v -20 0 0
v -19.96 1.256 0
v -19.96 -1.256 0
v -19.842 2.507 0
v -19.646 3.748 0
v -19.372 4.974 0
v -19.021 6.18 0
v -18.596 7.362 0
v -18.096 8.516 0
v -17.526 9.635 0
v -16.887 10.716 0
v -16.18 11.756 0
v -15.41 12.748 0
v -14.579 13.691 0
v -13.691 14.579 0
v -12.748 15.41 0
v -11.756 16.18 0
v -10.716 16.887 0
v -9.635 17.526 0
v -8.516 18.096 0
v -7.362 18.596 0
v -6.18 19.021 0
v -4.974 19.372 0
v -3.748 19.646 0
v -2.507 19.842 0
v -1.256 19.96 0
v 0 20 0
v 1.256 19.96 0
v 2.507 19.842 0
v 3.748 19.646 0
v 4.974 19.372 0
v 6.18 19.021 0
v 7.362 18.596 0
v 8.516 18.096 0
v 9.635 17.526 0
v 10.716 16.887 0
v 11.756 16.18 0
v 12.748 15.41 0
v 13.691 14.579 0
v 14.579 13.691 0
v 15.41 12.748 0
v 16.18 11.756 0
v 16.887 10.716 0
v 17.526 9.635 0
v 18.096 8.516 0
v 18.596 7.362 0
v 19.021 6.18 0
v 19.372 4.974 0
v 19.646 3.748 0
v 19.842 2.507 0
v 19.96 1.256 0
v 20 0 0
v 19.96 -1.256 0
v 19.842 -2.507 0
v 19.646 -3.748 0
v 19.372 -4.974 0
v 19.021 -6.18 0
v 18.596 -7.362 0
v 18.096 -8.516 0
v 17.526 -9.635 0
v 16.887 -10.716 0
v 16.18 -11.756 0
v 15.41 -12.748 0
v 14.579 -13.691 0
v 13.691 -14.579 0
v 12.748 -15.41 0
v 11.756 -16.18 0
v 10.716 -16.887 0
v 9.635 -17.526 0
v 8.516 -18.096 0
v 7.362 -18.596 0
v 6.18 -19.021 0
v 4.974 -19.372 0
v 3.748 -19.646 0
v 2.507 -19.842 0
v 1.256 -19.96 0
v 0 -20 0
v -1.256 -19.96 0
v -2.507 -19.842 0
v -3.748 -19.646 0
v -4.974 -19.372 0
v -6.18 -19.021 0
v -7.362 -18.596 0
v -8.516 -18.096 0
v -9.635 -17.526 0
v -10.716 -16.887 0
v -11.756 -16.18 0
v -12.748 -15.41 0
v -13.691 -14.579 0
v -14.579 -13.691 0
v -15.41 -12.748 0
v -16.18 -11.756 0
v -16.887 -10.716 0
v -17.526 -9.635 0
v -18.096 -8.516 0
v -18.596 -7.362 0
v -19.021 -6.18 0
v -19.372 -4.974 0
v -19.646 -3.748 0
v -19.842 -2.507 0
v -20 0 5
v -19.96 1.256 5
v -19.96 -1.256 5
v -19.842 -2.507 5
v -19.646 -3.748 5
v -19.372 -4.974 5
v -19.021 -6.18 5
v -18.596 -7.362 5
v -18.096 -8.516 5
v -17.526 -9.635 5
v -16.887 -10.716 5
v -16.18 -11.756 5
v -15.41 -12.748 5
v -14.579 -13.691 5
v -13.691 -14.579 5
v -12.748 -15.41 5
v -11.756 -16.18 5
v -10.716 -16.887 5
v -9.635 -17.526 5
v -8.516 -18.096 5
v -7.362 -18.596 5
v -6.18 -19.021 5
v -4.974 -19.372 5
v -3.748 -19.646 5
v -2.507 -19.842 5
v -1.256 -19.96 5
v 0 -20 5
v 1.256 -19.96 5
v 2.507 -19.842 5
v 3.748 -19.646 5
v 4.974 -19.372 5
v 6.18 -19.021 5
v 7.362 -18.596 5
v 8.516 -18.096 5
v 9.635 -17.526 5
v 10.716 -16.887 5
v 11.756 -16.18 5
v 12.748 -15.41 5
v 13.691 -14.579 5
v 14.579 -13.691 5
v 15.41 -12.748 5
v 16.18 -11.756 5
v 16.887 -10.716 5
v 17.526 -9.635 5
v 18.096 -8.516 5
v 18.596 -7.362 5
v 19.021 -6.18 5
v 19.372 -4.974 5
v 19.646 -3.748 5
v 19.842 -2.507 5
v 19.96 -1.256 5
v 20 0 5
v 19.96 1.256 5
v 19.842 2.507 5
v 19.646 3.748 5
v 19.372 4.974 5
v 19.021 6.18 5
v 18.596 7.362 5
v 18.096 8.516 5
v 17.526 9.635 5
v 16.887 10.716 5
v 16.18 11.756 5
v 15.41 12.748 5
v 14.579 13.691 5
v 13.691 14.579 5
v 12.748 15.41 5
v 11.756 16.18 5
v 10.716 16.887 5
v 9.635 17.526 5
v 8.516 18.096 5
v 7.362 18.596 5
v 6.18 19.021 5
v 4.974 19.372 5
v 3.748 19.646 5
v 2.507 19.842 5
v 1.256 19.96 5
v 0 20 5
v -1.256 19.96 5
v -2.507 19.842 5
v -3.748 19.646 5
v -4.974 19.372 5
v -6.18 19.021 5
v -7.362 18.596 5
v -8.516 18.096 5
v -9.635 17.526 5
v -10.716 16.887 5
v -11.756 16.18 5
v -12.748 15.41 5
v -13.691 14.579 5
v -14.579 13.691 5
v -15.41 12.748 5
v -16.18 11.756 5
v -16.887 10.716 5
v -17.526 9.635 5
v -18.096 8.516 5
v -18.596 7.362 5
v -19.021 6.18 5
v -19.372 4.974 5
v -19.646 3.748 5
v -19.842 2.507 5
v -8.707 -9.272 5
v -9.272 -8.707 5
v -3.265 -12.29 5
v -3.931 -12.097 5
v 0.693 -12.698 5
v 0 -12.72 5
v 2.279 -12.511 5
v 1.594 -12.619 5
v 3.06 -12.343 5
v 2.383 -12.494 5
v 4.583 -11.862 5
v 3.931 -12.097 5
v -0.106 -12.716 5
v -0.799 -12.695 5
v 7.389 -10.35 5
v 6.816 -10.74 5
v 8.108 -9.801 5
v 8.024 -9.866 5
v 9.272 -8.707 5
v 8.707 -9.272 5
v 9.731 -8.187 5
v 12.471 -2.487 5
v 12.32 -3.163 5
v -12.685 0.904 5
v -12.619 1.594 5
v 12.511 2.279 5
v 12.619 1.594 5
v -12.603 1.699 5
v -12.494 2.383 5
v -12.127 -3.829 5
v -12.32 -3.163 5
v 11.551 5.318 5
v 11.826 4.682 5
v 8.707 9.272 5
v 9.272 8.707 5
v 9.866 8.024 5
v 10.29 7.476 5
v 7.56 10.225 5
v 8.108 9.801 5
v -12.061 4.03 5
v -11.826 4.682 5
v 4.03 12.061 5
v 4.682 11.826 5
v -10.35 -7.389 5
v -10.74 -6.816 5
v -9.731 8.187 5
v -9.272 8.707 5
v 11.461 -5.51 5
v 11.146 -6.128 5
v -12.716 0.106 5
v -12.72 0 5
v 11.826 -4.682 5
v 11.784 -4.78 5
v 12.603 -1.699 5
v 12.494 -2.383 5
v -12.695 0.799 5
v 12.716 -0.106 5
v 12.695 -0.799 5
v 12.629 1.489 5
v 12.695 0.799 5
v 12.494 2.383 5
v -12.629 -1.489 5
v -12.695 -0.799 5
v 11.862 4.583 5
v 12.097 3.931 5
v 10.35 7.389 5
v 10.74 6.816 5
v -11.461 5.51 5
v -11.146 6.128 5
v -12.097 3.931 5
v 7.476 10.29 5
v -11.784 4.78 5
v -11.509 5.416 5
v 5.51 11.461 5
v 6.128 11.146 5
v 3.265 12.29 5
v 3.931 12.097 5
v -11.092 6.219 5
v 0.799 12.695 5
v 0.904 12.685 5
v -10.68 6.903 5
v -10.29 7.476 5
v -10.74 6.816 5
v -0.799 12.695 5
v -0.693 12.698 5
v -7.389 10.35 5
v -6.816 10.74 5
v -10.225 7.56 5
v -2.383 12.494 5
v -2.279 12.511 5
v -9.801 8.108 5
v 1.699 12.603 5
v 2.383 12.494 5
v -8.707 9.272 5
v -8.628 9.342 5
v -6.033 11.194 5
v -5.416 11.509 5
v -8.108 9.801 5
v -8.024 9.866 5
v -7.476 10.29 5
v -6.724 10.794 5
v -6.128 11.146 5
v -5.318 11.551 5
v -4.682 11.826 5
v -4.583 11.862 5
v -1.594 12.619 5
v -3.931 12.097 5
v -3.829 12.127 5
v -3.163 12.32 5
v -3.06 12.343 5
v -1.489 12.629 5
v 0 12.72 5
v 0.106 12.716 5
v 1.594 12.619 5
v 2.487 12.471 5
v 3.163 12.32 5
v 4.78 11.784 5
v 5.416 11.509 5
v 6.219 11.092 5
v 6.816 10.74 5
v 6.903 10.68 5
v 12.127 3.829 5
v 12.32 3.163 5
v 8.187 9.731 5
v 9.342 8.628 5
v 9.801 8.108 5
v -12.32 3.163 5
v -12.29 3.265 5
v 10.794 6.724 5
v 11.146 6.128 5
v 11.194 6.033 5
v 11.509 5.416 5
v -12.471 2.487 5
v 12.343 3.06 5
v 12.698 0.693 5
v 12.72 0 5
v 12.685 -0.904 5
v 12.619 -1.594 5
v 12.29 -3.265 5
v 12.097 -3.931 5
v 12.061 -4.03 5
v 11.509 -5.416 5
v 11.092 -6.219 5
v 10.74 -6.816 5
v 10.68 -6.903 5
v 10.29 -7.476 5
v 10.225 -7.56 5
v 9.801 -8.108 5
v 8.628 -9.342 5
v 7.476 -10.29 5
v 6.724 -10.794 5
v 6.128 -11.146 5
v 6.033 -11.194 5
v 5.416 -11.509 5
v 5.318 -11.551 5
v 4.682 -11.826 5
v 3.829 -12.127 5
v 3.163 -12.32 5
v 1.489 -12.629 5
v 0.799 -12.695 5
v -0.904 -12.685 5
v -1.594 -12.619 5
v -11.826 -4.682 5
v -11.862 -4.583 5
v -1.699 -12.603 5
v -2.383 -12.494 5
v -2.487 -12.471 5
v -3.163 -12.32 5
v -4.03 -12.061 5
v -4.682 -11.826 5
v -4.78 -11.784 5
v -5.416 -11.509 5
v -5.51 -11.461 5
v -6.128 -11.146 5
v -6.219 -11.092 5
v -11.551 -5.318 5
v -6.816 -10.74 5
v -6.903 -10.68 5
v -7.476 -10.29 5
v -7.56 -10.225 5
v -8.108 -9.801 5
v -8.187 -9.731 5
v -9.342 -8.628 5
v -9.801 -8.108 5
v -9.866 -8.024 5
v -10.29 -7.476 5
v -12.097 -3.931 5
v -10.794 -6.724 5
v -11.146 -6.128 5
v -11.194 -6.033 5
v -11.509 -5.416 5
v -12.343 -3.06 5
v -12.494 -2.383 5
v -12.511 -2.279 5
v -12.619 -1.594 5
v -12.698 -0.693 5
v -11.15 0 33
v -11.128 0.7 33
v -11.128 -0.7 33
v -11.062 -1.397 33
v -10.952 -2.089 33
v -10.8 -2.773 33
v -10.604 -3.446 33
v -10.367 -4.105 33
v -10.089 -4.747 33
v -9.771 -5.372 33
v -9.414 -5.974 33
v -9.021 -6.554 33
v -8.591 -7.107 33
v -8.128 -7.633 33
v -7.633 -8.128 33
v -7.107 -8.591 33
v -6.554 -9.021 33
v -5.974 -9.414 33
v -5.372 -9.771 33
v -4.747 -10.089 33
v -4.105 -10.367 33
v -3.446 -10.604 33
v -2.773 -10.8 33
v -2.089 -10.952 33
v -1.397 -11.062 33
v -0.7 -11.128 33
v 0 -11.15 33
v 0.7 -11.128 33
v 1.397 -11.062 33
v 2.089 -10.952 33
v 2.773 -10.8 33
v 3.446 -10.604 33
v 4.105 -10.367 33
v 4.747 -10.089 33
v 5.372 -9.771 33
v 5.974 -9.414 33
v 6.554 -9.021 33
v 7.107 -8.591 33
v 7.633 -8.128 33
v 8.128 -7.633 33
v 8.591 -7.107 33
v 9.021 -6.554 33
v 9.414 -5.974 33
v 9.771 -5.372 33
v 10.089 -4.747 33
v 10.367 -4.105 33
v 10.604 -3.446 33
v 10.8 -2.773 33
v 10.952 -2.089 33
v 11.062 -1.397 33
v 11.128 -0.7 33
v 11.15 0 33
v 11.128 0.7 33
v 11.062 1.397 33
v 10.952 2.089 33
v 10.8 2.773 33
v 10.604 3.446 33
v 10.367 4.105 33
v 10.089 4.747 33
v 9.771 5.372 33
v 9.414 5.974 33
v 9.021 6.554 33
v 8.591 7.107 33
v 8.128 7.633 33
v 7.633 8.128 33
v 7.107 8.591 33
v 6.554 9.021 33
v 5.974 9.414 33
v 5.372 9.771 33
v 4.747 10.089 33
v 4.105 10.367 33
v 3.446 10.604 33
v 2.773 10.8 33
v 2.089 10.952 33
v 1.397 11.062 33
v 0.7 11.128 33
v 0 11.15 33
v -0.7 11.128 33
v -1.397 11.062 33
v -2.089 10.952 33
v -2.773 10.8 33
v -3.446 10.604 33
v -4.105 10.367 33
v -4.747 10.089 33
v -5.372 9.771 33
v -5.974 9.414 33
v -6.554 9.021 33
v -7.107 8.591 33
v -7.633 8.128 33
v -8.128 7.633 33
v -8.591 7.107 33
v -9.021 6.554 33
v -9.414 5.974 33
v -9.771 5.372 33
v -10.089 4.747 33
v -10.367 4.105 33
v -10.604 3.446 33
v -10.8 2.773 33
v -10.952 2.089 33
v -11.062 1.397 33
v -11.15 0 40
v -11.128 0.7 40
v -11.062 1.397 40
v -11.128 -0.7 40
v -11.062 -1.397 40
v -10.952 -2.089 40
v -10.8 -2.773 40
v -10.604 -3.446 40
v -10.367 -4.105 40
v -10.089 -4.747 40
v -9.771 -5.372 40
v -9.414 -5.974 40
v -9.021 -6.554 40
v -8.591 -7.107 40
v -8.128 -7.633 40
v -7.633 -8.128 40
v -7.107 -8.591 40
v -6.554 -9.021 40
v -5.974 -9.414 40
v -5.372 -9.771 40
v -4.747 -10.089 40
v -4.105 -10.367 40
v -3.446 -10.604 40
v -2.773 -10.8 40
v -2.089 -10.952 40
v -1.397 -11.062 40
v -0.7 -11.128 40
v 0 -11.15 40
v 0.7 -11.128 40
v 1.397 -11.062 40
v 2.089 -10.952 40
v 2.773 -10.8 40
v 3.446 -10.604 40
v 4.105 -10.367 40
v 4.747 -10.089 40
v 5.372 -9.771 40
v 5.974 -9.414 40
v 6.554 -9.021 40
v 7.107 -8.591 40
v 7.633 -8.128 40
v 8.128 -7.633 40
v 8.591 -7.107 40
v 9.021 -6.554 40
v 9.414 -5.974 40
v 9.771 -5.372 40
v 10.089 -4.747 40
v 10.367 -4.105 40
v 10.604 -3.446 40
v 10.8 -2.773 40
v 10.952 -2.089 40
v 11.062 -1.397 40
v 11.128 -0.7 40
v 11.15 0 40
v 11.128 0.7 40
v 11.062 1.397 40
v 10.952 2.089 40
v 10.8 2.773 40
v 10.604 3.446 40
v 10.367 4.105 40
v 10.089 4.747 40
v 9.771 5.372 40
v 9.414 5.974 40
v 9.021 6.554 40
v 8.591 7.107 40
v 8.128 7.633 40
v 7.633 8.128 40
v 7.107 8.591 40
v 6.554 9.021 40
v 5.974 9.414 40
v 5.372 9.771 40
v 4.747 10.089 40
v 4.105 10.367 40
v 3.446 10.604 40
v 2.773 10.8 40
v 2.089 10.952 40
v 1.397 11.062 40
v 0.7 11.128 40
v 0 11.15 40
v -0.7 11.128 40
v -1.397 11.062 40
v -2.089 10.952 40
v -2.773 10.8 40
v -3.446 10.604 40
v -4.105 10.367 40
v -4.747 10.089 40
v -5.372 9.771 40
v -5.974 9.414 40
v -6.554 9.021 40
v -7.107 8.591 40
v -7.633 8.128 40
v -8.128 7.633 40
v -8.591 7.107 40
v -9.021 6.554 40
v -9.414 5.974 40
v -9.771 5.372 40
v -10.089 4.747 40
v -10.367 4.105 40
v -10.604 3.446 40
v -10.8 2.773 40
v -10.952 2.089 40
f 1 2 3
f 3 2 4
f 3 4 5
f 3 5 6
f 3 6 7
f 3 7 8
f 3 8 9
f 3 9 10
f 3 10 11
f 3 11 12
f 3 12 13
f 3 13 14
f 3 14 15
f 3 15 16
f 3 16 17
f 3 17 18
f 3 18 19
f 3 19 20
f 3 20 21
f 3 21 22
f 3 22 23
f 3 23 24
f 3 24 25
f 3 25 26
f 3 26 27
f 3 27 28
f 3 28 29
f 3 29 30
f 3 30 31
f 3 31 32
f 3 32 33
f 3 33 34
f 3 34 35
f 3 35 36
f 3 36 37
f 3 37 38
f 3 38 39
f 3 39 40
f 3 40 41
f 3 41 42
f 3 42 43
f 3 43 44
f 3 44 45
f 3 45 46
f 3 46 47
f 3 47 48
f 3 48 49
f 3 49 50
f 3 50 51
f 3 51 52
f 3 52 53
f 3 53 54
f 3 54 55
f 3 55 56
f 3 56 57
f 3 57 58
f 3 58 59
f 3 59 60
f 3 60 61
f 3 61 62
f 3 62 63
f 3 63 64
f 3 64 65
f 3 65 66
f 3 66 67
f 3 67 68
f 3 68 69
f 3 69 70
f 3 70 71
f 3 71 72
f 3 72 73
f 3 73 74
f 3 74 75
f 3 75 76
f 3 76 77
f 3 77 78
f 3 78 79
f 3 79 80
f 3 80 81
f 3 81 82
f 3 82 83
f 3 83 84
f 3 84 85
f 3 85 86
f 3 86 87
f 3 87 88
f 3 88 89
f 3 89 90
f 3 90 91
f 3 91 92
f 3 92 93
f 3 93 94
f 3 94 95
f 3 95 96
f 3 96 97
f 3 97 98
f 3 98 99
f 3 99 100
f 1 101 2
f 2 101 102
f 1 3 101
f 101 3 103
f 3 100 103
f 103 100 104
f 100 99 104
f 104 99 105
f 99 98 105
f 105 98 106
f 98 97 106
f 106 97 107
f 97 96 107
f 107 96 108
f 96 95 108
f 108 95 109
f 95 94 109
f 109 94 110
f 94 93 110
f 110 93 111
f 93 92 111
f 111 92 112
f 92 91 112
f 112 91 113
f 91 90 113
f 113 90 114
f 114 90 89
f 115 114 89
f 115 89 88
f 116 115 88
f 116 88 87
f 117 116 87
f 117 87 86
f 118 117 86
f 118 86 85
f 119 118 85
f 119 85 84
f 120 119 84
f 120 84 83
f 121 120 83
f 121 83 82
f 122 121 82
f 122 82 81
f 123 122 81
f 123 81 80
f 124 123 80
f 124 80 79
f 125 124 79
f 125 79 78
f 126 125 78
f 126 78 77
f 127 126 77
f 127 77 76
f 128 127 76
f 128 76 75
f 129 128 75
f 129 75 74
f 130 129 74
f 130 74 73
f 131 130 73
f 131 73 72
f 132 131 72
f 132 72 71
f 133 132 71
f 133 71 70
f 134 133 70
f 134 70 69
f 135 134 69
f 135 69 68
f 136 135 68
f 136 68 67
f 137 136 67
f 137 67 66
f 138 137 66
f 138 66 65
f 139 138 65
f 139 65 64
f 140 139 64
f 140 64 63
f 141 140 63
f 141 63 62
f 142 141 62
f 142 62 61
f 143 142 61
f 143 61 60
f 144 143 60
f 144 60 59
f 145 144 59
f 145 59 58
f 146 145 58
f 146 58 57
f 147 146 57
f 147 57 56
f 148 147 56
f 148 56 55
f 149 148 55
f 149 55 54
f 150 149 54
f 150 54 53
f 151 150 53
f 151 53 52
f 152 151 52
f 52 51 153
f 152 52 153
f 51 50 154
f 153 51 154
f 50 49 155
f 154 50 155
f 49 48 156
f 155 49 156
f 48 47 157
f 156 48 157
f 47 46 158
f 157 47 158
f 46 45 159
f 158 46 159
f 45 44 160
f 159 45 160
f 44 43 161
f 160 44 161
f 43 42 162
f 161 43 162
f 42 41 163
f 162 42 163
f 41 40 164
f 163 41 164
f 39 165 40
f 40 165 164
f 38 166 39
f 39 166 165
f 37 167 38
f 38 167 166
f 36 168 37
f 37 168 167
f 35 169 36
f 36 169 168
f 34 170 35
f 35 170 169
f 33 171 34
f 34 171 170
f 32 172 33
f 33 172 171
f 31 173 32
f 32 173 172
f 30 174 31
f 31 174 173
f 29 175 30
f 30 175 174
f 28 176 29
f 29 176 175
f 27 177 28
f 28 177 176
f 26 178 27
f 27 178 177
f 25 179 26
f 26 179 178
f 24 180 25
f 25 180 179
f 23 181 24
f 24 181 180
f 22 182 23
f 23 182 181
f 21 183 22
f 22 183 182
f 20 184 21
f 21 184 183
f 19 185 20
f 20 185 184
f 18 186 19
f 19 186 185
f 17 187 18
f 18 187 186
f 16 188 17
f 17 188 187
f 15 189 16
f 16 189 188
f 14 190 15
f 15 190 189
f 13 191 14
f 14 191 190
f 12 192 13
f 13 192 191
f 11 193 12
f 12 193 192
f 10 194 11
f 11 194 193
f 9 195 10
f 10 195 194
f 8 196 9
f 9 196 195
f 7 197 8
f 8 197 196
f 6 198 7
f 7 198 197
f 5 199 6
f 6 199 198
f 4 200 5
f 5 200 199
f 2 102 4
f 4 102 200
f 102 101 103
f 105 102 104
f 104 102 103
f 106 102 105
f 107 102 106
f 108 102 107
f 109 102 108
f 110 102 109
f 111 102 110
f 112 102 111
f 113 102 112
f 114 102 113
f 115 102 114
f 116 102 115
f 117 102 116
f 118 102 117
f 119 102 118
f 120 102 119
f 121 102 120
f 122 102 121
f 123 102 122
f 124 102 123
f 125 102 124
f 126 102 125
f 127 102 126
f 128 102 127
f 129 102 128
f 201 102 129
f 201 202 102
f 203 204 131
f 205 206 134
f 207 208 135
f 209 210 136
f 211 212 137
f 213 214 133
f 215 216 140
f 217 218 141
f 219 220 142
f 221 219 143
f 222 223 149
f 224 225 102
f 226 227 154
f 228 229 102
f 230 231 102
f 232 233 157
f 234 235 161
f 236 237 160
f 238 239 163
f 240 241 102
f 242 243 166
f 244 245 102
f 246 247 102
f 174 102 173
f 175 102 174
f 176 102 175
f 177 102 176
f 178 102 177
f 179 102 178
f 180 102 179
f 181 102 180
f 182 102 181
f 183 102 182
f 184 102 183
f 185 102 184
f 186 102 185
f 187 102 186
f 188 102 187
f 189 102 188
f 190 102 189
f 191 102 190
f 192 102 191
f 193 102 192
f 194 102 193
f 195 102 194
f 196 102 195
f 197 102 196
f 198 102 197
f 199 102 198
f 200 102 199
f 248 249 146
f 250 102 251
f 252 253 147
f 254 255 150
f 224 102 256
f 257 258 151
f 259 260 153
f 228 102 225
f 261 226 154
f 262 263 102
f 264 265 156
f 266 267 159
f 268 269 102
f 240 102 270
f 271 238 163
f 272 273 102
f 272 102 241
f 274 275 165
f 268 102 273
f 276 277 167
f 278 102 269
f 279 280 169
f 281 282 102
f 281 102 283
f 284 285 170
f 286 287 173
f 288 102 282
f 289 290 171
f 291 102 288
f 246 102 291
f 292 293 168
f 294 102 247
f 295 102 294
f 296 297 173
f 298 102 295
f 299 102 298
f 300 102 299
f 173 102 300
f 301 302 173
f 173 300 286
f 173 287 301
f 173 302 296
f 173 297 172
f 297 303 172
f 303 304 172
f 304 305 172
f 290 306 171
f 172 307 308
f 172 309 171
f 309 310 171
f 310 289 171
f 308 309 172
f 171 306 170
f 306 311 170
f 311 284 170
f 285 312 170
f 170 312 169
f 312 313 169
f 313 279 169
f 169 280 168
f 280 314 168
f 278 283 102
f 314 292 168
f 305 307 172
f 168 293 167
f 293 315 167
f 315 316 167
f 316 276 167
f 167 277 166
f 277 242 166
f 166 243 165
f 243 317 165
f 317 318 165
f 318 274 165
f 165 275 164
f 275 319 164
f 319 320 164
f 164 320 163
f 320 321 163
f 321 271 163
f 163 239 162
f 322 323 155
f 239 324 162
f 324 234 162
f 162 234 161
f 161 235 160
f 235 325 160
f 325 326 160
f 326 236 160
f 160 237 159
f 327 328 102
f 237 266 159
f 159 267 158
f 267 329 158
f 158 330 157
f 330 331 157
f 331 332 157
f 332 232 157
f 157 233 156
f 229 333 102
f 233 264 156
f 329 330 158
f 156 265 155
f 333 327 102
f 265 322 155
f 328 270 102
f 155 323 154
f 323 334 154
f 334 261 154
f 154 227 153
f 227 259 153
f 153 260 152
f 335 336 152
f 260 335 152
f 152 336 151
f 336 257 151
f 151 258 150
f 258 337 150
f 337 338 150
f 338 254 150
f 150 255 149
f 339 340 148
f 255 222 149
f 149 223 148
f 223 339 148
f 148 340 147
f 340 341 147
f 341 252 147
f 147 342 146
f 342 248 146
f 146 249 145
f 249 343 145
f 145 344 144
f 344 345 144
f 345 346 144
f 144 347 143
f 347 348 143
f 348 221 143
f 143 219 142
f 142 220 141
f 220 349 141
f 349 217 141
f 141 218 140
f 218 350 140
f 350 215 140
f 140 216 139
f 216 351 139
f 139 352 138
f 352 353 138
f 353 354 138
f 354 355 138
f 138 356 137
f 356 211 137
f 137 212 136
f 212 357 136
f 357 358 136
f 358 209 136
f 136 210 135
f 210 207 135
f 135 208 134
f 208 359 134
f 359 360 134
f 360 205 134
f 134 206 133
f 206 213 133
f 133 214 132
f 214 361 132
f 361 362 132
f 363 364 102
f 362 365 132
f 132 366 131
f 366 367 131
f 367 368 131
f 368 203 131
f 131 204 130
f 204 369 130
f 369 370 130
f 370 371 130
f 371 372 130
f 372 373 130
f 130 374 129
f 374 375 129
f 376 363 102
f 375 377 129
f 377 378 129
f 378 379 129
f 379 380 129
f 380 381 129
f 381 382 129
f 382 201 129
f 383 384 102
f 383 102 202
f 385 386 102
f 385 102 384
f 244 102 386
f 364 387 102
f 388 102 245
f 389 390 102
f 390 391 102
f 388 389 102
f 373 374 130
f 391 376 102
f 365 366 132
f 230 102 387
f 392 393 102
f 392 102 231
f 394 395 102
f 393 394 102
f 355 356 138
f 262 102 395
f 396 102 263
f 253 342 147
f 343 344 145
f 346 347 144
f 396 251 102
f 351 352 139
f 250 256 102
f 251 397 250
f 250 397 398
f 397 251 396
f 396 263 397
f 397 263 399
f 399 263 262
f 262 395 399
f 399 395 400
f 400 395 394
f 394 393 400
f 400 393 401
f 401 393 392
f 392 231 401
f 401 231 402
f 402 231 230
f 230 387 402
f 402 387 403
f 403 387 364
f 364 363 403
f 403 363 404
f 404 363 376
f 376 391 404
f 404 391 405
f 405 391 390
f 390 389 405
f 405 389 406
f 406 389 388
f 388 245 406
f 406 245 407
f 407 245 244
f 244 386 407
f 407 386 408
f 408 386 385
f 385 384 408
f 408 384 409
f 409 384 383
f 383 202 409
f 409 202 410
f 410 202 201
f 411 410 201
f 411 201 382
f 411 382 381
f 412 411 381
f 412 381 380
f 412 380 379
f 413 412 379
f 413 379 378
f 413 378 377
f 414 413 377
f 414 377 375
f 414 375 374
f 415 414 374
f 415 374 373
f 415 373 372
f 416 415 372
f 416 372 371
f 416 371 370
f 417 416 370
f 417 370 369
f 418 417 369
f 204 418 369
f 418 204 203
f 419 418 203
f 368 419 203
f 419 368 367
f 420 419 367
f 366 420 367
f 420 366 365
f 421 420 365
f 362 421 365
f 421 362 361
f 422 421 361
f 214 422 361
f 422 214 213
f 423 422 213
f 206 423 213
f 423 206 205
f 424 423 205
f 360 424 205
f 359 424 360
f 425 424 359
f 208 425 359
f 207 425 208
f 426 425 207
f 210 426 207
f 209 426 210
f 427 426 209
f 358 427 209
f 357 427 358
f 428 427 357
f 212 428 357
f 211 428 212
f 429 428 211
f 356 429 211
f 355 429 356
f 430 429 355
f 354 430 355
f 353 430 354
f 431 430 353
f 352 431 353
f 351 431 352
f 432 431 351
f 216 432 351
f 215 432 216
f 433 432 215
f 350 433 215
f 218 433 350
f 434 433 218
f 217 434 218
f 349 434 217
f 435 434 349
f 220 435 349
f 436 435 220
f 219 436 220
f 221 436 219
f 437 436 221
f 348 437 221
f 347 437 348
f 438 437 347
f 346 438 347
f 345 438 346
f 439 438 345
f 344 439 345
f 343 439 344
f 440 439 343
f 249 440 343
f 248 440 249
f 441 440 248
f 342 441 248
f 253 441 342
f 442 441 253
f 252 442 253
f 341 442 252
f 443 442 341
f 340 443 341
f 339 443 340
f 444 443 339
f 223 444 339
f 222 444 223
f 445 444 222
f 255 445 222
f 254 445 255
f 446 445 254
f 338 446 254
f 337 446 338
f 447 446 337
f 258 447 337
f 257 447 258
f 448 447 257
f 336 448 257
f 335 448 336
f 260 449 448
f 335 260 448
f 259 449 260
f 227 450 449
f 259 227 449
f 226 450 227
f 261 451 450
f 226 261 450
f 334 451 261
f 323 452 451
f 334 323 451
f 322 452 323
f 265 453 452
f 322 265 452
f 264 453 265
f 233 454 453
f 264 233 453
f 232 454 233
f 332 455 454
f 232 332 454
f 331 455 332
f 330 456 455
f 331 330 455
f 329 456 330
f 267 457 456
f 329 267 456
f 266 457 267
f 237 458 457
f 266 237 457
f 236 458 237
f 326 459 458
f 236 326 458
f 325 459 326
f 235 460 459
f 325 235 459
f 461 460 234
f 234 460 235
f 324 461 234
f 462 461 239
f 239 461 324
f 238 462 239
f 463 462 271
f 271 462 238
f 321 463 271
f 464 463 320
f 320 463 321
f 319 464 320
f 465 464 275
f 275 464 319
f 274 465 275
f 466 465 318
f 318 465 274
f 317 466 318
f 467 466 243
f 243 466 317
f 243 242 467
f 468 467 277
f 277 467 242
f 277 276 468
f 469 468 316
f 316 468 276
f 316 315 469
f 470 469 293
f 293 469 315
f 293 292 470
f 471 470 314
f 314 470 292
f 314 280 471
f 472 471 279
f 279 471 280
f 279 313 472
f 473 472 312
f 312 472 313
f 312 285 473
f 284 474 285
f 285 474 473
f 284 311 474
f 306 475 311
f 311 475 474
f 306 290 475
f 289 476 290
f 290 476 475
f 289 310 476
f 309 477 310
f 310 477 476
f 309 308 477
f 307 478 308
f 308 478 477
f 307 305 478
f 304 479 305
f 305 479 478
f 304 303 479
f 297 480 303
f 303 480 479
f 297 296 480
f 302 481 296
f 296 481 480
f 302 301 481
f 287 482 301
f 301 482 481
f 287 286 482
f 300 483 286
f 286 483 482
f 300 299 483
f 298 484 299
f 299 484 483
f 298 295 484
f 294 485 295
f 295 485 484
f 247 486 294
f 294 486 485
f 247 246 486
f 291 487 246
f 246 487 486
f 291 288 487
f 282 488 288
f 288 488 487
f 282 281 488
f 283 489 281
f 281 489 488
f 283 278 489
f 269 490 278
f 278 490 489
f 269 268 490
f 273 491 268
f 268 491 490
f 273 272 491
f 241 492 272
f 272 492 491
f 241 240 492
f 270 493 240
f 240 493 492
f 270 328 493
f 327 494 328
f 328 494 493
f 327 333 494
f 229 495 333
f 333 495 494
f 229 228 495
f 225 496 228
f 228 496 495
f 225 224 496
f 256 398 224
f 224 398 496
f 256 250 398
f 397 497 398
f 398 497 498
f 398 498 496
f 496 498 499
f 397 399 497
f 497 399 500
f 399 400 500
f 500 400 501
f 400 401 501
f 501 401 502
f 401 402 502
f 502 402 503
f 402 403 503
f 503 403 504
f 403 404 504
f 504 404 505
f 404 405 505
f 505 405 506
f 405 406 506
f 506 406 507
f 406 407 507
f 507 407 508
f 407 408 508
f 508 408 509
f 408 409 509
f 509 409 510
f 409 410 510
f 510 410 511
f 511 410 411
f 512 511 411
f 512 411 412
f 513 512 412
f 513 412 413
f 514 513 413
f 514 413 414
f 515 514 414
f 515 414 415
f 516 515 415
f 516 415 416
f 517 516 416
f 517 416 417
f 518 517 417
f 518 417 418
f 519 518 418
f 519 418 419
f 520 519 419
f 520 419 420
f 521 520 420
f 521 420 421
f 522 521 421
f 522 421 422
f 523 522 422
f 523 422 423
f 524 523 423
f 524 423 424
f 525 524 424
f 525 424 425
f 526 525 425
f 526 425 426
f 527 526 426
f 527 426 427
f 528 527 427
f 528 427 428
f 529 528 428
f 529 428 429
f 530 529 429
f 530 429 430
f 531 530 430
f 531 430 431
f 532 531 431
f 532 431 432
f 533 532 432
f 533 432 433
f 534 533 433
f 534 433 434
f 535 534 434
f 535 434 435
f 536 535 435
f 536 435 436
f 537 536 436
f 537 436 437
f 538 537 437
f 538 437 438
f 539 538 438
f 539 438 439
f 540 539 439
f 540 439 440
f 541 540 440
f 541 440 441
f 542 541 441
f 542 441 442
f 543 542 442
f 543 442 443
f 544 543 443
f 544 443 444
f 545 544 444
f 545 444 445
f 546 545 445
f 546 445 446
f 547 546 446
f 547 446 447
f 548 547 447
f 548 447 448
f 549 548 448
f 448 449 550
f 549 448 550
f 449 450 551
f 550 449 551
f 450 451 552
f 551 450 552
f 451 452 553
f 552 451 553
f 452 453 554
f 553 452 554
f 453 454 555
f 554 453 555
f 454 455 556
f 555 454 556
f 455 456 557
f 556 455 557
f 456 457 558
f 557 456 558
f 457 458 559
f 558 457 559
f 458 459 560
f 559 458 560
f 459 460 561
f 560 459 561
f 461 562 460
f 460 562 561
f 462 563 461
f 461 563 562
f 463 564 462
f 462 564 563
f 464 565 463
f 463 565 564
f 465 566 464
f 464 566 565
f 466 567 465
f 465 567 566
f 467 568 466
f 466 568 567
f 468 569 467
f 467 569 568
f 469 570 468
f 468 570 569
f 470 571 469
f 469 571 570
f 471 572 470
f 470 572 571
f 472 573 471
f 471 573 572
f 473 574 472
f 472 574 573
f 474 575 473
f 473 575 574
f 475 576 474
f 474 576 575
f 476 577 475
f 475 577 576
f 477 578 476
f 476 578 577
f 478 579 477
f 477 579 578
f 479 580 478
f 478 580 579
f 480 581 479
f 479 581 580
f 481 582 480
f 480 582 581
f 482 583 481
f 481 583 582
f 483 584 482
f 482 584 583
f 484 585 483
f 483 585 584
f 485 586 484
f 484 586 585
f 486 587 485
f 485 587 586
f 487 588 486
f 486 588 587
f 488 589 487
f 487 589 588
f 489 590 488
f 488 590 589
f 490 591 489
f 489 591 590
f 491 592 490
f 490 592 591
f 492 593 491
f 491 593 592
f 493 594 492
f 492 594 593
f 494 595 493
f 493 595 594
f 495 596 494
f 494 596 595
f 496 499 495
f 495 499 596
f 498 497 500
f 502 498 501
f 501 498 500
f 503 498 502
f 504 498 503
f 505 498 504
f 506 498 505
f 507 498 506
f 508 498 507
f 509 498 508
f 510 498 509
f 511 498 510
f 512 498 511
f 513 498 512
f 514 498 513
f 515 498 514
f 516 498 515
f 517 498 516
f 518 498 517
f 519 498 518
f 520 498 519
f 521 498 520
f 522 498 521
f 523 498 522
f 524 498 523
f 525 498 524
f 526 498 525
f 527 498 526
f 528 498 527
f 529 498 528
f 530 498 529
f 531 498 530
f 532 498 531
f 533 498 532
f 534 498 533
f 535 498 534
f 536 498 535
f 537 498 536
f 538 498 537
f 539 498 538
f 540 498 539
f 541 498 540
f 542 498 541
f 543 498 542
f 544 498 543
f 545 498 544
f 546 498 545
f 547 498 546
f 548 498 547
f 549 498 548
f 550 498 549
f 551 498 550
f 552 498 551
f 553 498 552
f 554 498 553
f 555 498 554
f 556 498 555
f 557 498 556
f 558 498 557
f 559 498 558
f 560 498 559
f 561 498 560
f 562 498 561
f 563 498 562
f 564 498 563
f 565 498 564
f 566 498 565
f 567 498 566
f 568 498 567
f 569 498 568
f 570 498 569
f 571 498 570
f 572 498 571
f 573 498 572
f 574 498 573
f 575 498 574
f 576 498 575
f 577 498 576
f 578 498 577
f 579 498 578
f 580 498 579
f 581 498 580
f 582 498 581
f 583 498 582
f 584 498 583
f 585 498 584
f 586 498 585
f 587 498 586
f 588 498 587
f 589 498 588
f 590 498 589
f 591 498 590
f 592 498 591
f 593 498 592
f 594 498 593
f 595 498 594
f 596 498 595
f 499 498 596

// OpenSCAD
cylinder(r=22.3/2,h=40,  $fn=100);
cylinder(r=40/2,h=5,  $fn=100);
cylinder(r1=26/2,r2=22.3/2, h=33,  $fn=100);
